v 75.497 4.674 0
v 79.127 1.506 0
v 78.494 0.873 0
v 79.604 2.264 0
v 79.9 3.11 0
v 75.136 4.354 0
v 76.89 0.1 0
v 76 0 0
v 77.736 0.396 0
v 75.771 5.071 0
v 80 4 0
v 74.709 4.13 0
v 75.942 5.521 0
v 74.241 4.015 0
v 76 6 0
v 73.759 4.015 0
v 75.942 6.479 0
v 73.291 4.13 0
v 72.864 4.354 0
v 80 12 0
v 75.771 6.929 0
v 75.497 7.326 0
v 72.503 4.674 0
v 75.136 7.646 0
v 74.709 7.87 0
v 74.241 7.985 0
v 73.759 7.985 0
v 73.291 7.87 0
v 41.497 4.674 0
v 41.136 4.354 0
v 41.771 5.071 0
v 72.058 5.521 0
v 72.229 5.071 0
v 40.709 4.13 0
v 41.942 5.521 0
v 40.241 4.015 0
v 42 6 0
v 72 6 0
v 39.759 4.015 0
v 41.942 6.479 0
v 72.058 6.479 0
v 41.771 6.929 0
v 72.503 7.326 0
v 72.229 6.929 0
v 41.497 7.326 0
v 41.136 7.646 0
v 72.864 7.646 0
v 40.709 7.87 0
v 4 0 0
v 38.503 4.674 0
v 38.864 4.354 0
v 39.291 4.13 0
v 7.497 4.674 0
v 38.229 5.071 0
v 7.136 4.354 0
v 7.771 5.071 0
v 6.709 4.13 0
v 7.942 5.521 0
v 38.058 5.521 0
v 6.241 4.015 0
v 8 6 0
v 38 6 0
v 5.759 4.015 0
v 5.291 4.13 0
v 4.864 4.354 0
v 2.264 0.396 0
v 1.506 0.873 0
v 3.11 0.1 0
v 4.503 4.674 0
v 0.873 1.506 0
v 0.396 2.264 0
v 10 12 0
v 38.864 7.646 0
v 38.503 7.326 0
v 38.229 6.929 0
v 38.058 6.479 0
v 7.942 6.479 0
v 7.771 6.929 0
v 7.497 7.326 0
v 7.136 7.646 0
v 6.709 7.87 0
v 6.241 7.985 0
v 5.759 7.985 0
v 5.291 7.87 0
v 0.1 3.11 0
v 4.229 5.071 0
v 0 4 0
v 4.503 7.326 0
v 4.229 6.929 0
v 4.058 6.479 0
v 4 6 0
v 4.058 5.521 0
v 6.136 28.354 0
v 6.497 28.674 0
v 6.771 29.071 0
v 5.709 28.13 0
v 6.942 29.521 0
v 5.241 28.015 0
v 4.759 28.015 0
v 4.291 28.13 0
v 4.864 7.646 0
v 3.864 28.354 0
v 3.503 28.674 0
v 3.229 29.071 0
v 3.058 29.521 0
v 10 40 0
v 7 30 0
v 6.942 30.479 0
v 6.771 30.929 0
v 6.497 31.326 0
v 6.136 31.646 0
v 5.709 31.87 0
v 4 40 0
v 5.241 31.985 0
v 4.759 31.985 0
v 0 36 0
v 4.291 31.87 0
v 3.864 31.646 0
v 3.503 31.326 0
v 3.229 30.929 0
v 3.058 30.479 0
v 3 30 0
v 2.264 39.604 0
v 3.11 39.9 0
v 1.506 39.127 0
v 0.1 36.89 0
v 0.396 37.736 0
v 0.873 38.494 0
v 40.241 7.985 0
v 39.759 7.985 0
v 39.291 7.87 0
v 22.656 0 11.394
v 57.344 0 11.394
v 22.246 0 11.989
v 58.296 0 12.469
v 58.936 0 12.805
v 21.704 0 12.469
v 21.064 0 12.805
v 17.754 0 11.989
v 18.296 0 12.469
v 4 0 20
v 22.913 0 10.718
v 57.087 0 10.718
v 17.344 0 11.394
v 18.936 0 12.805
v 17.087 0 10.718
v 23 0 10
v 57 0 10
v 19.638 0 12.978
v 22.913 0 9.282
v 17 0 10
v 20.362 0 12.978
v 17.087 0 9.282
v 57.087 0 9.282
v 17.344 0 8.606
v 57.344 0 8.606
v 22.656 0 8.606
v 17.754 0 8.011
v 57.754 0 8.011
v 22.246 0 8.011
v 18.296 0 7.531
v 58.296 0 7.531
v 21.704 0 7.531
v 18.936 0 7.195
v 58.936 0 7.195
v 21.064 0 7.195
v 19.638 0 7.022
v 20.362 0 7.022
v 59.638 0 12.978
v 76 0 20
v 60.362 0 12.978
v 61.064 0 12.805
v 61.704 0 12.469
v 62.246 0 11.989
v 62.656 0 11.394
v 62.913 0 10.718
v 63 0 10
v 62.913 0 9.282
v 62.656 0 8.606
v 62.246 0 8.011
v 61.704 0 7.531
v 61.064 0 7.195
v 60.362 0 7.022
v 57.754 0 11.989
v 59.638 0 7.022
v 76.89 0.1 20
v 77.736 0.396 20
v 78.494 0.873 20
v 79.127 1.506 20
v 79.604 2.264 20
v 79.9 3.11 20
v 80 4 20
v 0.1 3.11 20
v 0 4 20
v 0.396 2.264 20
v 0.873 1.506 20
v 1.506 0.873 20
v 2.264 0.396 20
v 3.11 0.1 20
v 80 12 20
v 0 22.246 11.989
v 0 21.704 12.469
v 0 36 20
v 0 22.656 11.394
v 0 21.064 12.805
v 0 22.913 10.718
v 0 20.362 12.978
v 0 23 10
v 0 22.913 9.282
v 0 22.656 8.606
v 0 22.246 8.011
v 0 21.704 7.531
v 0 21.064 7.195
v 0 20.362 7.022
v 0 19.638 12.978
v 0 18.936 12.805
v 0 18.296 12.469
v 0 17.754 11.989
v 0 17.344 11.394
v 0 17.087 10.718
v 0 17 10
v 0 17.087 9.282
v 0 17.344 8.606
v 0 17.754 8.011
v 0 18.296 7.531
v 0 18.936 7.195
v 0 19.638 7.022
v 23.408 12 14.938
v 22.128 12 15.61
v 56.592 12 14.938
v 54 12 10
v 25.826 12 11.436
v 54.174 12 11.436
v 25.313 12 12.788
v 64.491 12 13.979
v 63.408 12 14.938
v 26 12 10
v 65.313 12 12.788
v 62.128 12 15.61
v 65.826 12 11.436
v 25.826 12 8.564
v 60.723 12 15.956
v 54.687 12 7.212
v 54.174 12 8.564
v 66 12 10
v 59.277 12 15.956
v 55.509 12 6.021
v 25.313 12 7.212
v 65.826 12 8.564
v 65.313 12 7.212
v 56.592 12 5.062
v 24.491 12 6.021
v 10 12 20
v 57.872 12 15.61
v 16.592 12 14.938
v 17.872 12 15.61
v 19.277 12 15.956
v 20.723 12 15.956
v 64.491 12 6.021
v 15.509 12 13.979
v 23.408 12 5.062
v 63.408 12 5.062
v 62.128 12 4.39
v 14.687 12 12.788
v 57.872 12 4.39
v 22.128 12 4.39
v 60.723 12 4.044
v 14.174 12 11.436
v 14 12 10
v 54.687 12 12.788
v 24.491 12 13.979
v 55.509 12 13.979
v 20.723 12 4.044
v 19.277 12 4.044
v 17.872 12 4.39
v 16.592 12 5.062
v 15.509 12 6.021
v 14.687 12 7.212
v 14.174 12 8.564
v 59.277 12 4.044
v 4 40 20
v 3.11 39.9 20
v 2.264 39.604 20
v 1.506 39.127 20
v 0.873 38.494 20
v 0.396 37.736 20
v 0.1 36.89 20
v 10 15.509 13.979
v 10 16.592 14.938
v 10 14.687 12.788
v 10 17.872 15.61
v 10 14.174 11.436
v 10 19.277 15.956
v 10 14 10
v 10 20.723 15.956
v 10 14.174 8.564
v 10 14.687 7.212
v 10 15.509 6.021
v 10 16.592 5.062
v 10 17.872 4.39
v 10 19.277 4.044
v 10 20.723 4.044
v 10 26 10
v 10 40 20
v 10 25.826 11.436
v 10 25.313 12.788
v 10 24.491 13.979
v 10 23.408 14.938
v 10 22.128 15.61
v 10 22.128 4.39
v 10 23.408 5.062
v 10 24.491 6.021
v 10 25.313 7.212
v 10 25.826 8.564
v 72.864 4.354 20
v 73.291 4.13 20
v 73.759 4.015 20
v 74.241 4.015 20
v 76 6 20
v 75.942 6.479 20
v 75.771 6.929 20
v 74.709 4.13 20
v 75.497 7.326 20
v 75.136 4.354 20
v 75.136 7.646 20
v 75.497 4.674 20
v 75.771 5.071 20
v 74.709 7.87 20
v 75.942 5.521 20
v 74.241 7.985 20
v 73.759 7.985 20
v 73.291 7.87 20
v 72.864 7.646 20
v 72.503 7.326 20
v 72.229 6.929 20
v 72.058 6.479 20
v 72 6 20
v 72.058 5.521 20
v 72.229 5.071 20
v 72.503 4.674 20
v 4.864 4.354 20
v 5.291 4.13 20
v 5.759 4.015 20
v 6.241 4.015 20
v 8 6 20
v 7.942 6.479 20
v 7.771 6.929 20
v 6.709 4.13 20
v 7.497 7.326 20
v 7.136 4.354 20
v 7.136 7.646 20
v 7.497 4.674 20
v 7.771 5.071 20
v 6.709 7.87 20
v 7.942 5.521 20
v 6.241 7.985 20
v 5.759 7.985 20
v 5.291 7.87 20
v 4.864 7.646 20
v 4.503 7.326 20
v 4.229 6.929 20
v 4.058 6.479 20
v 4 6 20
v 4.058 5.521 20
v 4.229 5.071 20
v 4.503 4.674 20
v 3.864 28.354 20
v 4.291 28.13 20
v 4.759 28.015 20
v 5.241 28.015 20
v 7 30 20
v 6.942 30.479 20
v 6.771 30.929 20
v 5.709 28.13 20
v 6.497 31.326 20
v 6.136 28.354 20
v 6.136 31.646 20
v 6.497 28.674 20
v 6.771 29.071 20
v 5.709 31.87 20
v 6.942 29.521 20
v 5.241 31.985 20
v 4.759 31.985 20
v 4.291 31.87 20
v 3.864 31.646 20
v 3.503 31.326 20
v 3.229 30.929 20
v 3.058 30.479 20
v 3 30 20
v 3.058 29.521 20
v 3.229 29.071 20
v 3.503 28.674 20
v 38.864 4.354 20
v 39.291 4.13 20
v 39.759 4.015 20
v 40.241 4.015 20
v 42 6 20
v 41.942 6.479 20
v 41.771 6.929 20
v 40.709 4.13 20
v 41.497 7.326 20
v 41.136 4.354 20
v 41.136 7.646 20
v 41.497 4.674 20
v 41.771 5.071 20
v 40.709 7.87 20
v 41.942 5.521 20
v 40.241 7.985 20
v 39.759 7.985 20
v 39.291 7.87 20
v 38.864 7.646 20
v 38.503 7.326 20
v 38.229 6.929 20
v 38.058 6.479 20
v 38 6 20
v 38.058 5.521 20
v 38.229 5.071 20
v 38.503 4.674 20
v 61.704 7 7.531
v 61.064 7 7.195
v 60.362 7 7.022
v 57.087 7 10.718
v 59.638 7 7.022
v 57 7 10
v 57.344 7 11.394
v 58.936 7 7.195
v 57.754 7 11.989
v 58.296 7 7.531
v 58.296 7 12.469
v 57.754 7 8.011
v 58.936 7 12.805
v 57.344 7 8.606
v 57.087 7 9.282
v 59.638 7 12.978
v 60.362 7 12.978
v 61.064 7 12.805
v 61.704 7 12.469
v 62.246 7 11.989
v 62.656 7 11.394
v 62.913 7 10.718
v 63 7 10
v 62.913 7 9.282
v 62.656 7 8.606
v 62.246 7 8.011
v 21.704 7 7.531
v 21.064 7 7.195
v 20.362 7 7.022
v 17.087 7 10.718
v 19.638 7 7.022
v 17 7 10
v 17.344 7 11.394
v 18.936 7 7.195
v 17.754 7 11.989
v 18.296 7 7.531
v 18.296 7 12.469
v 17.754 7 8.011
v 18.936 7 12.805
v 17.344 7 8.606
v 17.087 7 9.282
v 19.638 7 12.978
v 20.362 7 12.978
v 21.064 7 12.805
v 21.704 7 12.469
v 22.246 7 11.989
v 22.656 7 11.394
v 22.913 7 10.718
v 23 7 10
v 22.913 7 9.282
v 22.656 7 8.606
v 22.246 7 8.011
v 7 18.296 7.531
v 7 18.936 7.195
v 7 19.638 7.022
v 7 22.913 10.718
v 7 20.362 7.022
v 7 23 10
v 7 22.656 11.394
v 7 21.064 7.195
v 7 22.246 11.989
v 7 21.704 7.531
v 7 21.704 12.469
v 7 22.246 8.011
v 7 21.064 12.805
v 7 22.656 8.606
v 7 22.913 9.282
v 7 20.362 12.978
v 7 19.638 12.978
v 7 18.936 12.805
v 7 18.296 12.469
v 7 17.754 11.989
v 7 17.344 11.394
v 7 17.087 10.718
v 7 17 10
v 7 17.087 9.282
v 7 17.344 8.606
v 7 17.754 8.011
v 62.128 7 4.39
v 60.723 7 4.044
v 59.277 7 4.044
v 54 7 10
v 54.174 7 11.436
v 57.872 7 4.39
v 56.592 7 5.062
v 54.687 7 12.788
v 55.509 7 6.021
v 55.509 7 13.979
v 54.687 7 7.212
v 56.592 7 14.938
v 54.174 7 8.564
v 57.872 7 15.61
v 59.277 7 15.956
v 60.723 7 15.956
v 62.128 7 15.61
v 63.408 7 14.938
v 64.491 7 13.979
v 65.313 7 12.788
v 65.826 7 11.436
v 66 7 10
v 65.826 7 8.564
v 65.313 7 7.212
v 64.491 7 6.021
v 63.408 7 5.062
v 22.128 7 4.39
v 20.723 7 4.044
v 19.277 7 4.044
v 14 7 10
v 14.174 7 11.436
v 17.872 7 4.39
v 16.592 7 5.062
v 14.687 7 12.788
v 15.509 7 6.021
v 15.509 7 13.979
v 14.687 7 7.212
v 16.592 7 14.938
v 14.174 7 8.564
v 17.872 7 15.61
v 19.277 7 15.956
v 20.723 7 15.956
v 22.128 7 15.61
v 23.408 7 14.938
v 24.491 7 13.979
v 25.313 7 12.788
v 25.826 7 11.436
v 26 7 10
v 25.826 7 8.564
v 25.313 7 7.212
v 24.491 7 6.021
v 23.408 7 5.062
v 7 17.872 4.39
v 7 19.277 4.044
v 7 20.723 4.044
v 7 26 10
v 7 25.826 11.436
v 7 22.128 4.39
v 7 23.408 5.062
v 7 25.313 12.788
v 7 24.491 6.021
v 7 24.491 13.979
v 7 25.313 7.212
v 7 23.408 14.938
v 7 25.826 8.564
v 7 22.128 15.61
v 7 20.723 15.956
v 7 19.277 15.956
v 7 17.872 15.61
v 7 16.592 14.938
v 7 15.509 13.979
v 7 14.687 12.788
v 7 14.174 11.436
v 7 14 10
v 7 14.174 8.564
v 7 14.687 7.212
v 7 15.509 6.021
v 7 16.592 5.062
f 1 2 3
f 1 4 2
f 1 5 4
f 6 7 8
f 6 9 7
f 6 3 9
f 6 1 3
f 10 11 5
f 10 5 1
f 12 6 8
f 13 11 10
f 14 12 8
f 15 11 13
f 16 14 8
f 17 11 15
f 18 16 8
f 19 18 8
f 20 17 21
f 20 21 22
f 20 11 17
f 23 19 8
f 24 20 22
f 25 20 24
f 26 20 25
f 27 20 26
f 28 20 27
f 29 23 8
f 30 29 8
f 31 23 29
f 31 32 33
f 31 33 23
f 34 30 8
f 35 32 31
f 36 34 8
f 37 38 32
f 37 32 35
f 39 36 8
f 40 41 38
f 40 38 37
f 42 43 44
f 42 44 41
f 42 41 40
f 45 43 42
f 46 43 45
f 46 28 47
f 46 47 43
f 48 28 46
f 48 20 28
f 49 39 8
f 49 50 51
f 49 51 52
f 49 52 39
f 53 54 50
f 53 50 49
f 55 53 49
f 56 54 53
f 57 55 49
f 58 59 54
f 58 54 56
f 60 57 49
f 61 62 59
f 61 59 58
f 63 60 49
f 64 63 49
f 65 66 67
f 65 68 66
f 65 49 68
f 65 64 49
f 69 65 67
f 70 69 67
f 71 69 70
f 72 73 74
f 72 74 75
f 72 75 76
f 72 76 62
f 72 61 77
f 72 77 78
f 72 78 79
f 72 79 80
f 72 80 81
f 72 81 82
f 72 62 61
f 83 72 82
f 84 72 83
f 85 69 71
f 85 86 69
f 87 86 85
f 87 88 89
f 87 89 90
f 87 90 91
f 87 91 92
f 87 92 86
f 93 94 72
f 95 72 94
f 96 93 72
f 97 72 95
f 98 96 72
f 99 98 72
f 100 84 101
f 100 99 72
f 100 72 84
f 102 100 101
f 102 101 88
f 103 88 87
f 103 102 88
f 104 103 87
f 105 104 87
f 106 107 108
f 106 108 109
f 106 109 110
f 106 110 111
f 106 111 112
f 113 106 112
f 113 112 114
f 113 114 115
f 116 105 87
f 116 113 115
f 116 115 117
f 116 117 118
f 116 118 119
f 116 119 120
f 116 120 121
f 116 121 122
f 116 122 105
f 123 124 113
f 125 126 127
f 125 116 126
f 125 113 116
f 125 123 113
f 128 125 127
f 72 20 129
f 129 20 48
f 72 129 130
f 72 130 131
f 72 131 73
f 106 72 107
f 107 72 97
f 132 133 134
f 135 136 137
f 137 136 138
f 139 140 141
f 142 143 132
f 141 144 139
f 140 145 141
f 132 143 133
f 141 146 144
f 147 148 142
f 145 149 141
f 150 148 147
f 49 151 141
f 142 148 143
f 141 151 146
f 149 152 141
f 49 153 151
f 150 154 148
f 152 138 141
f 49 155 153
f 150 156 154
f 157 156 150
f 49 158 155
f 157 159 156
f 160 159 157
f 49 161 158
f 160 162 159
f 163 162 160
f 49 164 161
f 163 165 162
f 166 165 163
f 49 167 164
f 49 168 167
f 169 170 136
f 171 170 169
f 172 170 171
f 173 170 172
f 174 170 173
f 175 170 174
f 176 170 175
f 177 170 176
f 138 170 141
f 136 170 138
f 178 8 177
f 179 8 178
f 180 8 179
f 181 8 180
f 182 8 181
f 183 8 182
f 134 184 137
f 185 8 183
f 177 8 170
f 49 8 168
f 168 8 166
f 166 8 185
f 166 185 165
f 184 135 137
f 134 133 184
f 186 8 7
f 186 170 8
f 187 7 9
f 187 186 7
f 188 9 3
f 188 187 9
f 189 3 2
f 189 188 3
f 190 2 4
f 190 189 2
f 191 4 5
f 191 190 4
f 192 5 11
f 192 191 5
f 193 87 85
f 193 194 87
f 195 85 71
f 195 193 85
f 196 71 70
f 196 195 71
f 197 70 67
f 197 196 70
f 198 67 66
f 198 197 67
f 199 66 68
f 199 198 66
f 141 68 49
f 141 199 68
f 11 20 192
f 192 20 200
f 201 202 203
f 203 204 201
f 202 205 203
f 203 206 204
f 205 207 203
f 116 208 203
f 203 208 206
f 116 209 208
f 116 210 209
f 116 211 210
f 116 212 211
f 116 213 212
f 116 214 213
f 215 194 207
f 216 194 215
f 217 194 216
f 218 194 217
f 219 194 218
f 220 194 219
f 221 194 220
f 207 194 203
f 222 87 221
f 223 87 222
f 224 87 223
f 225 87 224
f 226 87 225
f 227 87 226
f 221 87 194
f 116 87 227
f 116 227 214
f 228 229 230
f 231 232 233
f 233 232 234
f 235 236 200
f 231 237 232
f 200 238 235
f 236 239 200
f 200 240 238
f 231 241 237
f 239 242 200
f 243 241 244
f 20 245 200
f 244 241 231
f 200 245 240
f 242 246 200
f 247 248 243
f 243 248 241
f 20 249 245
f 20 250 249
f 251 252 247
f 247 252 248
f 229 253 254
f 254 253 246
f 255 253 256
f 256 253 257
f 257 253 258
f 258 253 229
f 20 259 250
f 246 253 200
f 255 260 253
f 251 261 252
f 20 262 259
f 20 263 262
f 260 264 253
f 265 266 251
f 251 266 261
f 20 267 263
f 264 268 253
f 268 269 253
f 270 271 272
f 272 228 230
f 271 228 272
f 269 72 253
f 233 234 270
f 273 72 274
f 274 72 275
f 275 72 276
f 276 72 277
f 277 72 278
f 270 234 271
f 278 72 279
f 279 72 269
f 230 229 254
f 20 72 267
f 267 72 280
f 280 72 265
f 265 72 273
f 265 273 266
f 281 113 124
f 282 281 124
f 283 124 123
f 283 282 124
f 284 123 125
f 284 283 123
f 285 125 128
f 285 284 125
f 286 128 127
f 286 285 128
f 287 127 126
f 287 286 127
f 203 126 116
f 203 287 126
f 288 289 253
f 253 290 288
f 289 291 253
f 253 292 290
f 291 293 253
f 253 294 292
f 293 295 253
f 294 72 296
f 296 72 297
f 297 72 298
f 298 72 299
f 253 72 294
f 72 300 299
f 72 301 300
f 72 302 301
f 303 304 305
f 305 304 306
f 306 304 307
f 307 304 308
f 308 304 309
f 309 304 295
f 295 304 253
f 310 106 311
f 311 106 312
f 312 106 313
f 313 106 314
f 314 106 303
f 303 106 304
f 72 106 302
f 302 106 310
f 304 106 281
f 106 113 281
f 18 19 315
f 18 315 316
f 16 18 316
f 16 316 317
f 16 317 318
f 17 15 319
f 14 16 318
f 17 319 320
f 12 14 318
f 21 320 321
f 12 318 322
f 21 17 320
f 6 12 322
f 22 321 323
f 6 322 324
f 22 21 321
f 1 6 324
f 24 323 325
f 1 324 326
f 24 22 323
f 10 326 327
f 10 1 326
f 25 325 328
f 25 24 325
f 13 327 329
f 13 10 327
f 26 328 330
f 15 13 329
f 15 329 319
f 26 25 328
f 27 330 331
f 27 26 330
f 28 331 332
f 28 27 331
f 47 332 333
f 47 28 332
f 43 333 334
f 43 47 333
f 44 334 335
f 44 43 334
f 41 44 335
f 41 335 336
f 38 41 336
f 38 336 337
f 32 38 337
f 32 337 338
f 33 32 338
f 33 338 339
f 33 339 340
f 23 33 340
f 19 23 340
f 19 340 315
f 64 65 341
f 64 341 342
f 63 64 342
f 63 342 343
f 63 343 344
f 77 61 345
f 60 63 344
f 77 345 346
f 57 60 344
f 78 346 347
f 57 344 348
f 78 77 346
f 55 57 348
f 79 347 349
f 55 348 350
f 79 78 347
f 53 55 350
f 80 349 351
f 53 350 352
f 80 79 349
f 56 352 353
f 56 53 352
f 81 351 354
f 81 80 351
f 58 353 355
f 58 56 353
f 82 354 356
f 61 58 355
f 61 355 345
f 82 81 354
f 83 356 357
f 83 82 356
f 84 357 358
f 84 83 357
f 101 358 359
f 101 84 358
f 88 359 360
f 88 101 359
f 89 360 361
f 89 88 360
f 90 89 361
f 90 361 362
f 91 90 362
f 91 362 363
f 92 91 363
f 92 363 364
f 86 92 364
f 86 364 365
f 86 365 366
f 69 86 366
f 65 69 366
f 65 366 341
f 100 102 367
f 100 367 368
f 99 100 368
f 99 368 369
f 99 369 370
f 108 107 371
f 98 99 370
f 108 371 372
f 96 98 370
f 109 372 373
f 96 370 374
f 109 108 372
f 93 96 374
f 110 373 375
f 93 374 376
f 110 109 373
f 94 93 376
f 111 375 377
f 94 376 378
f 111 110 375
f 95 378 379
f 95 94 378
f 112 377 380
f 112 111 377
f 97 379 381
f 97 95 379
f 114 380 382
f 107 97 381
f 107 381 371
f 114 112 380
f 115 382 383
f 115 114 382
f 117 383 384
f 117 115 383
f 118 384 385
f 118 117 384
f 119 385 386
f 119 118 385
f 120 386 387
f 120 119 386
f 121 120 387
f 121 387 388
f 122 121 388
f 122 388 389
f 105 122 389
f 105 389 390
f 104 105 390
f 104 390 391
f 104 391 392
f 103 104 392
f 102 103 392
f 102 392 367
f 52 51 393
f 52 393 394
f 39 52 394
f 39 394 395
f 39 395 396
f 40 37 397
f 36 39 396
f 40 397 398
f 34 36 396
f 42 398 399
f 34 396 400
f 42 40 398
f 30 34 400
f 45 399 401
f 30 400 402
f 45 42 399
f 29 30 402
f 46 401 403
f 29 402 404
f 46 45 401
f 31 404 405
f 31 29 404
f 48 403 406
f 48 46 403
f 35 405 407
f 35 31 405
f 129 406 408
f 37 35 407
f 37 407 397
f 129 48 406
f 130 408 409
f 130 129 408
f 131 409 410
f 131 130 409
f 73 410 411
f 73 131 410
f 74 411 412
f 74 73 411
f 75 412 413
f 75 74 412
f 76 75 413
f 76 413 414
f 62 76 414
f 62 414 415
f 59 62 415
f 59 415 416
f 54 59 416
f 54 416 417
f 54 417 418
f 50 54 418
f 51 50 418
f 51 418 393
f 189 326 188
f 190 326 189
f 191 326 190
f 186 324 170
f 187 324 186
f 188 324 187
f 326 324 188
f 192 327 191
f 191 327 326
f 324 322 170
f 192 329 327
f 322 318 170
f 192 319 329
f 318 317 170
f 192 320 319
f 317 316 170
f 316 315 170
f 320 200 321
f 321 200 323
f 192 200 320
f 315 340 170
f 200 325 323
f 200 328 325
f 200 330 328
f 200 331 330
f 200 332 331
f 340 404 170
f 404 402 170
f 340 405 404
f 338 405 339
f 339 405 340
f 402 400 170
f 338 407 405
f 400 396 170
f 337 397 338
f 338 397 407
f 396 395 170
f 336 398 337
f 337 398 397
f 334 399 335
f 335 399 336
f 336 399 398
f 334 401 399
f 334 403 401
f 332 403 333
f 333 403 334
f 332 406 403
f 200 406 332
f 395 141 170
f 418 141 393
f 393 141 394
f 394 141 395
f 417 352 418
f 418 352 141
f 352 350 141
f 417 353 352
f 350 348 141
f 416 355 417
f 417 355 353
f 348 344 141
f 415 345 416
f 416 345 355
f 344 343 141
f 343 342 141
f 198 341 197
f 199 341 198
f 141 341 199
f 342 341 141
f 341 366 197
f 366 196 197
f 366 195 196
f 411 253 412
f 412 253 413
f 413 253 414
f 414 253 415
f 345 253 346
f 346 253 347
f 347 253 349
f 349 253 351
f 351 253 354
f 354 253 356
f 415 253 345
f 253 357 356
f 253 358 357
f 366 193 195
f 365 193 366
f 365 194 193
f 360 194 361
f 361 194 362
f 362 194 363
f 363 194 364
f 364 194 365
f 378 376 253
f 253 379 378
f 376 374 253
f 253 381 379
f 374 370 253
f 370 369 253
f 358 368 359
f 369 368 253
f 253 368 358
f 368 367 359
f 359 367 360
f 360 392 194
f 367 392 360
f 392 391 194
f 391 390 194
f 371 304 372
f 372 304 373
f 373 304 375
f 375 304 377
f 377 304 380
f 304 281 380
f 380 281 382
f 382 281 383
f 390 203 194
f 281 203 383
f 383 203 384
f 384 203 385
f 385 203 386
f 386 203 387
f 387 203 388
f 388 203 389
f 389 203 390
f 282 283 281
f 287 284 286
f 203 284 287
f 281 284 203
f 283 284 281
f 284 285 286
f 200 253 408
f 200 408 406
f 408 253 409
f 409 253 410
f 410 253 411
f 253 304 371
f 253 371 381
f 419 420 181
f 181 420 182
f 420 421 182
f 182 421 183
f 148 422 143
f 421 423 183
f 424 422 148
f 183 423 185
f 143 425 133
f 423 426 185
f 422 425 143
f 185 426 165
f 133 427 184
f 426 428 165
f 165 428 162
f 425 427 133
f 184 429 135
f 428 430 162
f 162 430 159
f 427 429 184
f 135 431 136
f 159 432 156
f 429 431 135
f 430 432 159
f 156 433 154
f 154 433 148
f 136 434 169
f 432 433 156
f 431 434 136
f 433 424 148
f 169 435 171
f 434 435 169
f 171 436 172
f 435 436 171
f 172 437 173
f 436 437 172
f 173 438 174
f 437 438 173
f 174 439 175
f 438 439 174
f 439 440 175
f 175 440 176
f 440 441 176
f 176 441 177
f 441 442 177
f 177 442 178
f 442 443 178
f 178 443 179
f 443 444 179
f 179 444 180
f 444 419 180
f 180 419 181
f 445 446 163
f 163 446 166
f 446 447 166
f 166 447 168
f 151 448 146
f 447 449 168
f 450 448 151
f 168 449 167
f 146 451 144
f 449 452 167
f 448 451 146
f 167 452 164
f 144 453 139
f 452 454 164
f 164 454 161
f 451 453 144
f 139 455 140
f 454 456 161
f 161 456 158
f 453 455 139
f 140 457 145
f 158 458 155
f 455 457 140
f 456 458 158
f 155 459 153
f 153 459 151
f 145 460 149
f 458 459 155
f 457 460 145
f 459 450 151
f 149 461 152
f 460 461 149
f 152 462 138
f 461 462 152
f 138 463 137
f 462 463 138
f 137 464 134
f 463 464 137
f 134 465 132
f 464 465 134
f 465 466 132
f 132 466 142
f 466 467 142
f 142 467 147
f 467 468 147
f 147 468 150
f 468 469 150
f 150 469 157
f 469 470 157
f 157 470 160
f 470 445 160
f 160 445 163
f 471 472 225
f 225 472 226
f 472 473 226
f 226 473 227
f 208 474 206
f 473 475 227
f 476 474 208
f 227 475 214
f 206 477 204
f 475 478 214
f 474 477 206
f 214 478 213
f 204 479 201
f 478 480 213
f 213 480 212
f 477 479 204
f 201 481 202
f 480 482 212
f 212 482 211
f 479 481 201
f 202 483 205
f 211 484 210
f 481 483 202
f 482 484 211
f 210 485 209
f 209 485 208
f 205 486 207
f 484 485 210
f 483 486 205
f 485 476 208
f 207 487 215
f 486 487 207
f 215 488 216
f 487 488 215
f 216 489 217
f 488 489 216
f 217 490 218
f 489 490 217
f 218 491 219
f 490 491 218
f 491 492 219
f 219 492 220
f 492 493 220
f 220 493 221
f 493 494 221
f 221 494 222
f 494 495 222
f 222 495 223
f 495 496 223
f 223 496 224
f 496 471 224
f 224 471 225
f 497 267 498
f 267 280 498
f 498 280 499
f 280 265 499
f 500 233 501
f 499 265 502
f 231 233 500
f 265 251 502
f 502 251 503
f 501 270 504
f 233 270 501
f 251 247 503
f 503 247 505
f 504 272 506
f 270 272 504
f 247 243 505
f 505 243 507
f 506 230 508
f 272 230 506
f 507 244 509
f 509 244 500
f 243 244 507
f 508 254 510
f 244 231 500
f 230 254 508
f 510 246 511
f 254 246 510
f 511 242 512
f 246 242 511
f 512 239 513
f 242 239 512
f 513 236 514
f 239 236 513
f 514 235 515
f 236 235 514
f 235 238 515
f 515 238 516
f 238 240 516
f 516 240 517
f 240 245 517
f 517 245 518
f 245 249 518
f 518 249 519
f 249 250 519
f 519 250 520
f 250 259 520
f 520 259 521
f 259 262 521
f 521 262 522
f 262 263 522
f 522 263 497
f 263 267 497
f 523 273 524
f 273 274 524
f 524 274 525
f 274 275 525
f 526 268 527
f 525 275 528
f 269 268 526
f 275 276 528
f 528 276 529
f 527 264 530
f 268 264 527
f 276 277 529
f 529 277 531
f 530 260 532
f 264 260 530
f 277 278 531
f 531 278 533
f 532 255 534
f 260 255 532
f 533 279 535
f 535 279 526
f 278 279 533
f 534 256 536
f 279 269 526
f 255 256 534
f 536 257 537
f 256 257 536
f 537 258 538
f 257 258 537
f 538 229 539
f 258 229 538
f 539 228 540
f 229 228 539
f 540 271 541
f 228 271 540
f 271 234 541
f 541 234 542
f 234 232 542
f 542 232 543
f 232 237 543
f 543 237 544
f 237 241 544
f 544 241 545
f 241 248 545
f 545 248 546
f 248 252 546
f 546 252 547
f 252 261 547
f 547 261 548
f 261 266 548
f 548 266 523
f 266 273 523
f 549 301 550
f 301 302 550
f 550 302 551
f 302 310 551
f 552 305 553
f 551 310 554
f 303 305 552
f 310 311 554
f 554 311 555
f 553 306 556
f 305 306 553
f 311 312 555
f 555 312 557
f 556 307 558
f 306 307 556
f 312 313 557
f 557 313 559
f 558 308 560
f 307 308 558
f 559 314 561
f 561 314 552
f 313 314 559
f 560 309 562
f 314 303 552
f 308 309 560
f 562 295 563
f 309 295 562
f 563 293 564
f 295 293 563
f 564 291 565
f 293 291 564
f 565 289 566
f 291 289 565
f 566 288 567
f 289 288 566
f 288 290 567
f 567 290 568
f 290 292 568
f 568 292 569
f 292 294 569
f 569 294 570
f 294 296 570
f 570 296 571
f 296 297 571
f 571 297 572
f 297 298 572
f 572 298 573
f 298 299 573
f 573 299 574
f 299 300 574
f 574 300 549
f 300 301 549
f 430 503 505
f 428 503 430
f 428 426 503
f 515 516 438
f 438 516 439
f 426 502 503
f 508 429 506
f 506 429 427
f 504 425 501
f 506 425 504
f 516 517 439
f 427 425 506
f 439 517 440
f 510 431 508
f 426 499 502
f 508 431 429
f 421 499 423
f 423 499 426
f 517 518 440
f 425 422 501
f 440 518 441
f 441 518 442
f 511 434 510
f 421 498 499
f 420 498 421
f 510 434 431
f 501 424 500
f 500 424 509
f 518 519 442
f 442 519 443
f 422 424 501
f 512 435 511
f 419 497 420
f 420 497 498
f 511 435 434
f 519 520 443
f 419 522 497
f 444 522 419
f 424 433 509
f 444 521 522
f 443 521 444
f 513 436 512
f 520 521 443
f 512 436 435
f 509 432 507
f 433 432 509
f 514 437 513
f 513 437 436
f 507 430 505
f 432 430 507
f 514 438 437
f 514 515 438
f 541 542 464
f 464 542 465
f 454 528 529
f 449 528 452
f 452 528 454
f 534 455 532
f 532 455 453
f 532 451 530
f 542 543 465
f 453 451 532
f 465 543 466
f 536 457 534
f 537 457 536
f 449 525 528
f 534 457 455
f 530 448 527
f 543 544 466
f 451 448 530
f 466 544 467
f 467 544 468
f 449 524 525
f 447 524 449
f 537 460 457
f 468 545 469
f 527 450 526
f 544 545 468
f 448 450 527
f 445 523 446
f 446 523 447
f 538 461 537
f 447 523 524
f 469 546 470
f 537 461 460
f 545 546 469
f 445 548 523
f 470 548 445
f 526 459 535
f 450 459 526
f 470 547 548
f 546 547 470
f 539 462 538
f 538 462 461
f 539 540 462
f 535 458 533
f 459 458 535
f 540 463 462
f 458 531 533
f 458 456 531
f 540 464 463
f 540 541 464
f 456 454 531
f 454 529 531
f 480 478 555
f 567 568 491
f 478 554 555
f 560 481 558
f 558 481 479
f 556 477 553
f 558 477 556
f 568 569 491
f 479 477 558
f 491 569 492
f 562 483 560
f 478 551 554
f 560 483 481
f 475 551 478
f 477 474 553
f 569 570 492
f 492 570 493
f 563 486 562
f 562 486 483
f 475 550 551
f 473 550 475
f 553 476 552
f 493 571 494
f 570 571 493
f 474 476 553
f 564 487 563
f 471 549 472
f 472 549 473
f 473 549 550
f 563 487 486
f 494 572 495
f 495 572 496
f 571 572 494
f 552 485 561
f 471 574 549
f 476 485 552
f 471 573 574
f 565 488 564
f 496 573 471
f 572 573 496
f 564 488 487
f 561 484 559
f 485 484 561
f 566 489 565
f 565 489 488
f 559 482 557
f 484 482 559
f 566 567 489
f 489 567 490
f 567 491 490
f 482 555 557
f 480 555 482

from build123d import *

# Parameters (mm, degrees)
SKETCH_R        = 2
PAD_DEPTH       = 20
FILLET_R        = 4
FILLET001_R     = 4
FILLET002_R     = 4
SKETCH001_R     = 3
POCKET_DEPTH    = 11
SKETCH002_R     = 3
POCKET001_DEPTH = 13
SKETCH003_R     = 6
POCKET002_DEPTH = 3
SKETCH004_R     = 6
POCKET003_DEPTH = 5


with BuildPart() as part:
    # Sketch → Pad (new body)
    with BuildSketch(Plane.XY):
        Polygon((80, 0), (80, 12), (10, 12), (10, 40), (0, 40), (0, 0), align=None)
        with Locations((5, 30)):
            Circle(SKETCH_R, mode=Mode.SUBTRACT)
        with Locations((6, 6)):
            Circle(SKETCH_R, mode=Mode.SUBTRACT)
        with Locations((74, 6)):
            Circle(SKETCH_R, mode=Mode.SUBTRACT)
        with Locations((40, 6)):
            Circle(SKETCH_R, mode=Mode.SUBTRACT)
    extrude(amount=PAD_DEPTH)

    # Fillet
    fillet_edges = [part.edges().sort_by_distance(p)[0] for p in [
        (0, 40, 10),
    ]]
    fillet(fillet_edges, radius=FILLET_R)

    # Fillet001
    fillet001_edges = [part.edges().sort_by_distance(p)[0] for p in [
        (0, 0, 10),
    ]]
    fillet(fillet001_edges, radius=FILLET001_R)

    # Fillet002
    fillet002_edges = [part.edges().sort_by_distance(p)[0] for p in [
        (80, 0, 10),
    ]]
    fillet(fillet002_edges, radius=FILLET002_R)

    # Sketch001 → Pocket (cut)
    with BuildSketch(Plane.YZ.offset(10)):
        with Locations((20, 10)):
            Circle(SKETCH001_R)
    extrude(amount=-POCKET_DEPTH, mode=Mode.SUBTRACT)

    # Sketch002 → Pocket001 (cut)
    with BuildSketch(Plane(origin=(0, 12, 0), x_dir=(-1, 0, 0), z_dir=(0, 1, 0))):
        with Locations((-60, 10)):
            Circle(SKETCH002_R)
        with Locations((-20, 10)):
            Circle(SKETCH002_R)
    extrude(amount=-POCKET001_DEPTH, mode=Mode.SUBTRACT)

    # Sketch003 → Pocket002 (cut)
    with BuildSketch(Plane.YZ.offset(10)):
        with Locations((20, 10)):
            Circle(SKETCH003_R)
    extrude(amount=-POCKET002_DEPTH, mode=Mode.SUBTRACT)

    # Sketch004 → Pocket003 (cut)
    with BuildSketch(Plane(origin=(0, 12, 0), x_dir=(-1, 0, 0), z_dir=(0, 1, 0))):
        with Locations((-60, 10)):
            Circle(SKETCH004_R)
        with Locations((-20, 10)):
            Circle(SKETCH004_R)
    extrude(amount=-POCKET003_DEPTH, mode=Mode.SUBTRACT)


solid = part.part
